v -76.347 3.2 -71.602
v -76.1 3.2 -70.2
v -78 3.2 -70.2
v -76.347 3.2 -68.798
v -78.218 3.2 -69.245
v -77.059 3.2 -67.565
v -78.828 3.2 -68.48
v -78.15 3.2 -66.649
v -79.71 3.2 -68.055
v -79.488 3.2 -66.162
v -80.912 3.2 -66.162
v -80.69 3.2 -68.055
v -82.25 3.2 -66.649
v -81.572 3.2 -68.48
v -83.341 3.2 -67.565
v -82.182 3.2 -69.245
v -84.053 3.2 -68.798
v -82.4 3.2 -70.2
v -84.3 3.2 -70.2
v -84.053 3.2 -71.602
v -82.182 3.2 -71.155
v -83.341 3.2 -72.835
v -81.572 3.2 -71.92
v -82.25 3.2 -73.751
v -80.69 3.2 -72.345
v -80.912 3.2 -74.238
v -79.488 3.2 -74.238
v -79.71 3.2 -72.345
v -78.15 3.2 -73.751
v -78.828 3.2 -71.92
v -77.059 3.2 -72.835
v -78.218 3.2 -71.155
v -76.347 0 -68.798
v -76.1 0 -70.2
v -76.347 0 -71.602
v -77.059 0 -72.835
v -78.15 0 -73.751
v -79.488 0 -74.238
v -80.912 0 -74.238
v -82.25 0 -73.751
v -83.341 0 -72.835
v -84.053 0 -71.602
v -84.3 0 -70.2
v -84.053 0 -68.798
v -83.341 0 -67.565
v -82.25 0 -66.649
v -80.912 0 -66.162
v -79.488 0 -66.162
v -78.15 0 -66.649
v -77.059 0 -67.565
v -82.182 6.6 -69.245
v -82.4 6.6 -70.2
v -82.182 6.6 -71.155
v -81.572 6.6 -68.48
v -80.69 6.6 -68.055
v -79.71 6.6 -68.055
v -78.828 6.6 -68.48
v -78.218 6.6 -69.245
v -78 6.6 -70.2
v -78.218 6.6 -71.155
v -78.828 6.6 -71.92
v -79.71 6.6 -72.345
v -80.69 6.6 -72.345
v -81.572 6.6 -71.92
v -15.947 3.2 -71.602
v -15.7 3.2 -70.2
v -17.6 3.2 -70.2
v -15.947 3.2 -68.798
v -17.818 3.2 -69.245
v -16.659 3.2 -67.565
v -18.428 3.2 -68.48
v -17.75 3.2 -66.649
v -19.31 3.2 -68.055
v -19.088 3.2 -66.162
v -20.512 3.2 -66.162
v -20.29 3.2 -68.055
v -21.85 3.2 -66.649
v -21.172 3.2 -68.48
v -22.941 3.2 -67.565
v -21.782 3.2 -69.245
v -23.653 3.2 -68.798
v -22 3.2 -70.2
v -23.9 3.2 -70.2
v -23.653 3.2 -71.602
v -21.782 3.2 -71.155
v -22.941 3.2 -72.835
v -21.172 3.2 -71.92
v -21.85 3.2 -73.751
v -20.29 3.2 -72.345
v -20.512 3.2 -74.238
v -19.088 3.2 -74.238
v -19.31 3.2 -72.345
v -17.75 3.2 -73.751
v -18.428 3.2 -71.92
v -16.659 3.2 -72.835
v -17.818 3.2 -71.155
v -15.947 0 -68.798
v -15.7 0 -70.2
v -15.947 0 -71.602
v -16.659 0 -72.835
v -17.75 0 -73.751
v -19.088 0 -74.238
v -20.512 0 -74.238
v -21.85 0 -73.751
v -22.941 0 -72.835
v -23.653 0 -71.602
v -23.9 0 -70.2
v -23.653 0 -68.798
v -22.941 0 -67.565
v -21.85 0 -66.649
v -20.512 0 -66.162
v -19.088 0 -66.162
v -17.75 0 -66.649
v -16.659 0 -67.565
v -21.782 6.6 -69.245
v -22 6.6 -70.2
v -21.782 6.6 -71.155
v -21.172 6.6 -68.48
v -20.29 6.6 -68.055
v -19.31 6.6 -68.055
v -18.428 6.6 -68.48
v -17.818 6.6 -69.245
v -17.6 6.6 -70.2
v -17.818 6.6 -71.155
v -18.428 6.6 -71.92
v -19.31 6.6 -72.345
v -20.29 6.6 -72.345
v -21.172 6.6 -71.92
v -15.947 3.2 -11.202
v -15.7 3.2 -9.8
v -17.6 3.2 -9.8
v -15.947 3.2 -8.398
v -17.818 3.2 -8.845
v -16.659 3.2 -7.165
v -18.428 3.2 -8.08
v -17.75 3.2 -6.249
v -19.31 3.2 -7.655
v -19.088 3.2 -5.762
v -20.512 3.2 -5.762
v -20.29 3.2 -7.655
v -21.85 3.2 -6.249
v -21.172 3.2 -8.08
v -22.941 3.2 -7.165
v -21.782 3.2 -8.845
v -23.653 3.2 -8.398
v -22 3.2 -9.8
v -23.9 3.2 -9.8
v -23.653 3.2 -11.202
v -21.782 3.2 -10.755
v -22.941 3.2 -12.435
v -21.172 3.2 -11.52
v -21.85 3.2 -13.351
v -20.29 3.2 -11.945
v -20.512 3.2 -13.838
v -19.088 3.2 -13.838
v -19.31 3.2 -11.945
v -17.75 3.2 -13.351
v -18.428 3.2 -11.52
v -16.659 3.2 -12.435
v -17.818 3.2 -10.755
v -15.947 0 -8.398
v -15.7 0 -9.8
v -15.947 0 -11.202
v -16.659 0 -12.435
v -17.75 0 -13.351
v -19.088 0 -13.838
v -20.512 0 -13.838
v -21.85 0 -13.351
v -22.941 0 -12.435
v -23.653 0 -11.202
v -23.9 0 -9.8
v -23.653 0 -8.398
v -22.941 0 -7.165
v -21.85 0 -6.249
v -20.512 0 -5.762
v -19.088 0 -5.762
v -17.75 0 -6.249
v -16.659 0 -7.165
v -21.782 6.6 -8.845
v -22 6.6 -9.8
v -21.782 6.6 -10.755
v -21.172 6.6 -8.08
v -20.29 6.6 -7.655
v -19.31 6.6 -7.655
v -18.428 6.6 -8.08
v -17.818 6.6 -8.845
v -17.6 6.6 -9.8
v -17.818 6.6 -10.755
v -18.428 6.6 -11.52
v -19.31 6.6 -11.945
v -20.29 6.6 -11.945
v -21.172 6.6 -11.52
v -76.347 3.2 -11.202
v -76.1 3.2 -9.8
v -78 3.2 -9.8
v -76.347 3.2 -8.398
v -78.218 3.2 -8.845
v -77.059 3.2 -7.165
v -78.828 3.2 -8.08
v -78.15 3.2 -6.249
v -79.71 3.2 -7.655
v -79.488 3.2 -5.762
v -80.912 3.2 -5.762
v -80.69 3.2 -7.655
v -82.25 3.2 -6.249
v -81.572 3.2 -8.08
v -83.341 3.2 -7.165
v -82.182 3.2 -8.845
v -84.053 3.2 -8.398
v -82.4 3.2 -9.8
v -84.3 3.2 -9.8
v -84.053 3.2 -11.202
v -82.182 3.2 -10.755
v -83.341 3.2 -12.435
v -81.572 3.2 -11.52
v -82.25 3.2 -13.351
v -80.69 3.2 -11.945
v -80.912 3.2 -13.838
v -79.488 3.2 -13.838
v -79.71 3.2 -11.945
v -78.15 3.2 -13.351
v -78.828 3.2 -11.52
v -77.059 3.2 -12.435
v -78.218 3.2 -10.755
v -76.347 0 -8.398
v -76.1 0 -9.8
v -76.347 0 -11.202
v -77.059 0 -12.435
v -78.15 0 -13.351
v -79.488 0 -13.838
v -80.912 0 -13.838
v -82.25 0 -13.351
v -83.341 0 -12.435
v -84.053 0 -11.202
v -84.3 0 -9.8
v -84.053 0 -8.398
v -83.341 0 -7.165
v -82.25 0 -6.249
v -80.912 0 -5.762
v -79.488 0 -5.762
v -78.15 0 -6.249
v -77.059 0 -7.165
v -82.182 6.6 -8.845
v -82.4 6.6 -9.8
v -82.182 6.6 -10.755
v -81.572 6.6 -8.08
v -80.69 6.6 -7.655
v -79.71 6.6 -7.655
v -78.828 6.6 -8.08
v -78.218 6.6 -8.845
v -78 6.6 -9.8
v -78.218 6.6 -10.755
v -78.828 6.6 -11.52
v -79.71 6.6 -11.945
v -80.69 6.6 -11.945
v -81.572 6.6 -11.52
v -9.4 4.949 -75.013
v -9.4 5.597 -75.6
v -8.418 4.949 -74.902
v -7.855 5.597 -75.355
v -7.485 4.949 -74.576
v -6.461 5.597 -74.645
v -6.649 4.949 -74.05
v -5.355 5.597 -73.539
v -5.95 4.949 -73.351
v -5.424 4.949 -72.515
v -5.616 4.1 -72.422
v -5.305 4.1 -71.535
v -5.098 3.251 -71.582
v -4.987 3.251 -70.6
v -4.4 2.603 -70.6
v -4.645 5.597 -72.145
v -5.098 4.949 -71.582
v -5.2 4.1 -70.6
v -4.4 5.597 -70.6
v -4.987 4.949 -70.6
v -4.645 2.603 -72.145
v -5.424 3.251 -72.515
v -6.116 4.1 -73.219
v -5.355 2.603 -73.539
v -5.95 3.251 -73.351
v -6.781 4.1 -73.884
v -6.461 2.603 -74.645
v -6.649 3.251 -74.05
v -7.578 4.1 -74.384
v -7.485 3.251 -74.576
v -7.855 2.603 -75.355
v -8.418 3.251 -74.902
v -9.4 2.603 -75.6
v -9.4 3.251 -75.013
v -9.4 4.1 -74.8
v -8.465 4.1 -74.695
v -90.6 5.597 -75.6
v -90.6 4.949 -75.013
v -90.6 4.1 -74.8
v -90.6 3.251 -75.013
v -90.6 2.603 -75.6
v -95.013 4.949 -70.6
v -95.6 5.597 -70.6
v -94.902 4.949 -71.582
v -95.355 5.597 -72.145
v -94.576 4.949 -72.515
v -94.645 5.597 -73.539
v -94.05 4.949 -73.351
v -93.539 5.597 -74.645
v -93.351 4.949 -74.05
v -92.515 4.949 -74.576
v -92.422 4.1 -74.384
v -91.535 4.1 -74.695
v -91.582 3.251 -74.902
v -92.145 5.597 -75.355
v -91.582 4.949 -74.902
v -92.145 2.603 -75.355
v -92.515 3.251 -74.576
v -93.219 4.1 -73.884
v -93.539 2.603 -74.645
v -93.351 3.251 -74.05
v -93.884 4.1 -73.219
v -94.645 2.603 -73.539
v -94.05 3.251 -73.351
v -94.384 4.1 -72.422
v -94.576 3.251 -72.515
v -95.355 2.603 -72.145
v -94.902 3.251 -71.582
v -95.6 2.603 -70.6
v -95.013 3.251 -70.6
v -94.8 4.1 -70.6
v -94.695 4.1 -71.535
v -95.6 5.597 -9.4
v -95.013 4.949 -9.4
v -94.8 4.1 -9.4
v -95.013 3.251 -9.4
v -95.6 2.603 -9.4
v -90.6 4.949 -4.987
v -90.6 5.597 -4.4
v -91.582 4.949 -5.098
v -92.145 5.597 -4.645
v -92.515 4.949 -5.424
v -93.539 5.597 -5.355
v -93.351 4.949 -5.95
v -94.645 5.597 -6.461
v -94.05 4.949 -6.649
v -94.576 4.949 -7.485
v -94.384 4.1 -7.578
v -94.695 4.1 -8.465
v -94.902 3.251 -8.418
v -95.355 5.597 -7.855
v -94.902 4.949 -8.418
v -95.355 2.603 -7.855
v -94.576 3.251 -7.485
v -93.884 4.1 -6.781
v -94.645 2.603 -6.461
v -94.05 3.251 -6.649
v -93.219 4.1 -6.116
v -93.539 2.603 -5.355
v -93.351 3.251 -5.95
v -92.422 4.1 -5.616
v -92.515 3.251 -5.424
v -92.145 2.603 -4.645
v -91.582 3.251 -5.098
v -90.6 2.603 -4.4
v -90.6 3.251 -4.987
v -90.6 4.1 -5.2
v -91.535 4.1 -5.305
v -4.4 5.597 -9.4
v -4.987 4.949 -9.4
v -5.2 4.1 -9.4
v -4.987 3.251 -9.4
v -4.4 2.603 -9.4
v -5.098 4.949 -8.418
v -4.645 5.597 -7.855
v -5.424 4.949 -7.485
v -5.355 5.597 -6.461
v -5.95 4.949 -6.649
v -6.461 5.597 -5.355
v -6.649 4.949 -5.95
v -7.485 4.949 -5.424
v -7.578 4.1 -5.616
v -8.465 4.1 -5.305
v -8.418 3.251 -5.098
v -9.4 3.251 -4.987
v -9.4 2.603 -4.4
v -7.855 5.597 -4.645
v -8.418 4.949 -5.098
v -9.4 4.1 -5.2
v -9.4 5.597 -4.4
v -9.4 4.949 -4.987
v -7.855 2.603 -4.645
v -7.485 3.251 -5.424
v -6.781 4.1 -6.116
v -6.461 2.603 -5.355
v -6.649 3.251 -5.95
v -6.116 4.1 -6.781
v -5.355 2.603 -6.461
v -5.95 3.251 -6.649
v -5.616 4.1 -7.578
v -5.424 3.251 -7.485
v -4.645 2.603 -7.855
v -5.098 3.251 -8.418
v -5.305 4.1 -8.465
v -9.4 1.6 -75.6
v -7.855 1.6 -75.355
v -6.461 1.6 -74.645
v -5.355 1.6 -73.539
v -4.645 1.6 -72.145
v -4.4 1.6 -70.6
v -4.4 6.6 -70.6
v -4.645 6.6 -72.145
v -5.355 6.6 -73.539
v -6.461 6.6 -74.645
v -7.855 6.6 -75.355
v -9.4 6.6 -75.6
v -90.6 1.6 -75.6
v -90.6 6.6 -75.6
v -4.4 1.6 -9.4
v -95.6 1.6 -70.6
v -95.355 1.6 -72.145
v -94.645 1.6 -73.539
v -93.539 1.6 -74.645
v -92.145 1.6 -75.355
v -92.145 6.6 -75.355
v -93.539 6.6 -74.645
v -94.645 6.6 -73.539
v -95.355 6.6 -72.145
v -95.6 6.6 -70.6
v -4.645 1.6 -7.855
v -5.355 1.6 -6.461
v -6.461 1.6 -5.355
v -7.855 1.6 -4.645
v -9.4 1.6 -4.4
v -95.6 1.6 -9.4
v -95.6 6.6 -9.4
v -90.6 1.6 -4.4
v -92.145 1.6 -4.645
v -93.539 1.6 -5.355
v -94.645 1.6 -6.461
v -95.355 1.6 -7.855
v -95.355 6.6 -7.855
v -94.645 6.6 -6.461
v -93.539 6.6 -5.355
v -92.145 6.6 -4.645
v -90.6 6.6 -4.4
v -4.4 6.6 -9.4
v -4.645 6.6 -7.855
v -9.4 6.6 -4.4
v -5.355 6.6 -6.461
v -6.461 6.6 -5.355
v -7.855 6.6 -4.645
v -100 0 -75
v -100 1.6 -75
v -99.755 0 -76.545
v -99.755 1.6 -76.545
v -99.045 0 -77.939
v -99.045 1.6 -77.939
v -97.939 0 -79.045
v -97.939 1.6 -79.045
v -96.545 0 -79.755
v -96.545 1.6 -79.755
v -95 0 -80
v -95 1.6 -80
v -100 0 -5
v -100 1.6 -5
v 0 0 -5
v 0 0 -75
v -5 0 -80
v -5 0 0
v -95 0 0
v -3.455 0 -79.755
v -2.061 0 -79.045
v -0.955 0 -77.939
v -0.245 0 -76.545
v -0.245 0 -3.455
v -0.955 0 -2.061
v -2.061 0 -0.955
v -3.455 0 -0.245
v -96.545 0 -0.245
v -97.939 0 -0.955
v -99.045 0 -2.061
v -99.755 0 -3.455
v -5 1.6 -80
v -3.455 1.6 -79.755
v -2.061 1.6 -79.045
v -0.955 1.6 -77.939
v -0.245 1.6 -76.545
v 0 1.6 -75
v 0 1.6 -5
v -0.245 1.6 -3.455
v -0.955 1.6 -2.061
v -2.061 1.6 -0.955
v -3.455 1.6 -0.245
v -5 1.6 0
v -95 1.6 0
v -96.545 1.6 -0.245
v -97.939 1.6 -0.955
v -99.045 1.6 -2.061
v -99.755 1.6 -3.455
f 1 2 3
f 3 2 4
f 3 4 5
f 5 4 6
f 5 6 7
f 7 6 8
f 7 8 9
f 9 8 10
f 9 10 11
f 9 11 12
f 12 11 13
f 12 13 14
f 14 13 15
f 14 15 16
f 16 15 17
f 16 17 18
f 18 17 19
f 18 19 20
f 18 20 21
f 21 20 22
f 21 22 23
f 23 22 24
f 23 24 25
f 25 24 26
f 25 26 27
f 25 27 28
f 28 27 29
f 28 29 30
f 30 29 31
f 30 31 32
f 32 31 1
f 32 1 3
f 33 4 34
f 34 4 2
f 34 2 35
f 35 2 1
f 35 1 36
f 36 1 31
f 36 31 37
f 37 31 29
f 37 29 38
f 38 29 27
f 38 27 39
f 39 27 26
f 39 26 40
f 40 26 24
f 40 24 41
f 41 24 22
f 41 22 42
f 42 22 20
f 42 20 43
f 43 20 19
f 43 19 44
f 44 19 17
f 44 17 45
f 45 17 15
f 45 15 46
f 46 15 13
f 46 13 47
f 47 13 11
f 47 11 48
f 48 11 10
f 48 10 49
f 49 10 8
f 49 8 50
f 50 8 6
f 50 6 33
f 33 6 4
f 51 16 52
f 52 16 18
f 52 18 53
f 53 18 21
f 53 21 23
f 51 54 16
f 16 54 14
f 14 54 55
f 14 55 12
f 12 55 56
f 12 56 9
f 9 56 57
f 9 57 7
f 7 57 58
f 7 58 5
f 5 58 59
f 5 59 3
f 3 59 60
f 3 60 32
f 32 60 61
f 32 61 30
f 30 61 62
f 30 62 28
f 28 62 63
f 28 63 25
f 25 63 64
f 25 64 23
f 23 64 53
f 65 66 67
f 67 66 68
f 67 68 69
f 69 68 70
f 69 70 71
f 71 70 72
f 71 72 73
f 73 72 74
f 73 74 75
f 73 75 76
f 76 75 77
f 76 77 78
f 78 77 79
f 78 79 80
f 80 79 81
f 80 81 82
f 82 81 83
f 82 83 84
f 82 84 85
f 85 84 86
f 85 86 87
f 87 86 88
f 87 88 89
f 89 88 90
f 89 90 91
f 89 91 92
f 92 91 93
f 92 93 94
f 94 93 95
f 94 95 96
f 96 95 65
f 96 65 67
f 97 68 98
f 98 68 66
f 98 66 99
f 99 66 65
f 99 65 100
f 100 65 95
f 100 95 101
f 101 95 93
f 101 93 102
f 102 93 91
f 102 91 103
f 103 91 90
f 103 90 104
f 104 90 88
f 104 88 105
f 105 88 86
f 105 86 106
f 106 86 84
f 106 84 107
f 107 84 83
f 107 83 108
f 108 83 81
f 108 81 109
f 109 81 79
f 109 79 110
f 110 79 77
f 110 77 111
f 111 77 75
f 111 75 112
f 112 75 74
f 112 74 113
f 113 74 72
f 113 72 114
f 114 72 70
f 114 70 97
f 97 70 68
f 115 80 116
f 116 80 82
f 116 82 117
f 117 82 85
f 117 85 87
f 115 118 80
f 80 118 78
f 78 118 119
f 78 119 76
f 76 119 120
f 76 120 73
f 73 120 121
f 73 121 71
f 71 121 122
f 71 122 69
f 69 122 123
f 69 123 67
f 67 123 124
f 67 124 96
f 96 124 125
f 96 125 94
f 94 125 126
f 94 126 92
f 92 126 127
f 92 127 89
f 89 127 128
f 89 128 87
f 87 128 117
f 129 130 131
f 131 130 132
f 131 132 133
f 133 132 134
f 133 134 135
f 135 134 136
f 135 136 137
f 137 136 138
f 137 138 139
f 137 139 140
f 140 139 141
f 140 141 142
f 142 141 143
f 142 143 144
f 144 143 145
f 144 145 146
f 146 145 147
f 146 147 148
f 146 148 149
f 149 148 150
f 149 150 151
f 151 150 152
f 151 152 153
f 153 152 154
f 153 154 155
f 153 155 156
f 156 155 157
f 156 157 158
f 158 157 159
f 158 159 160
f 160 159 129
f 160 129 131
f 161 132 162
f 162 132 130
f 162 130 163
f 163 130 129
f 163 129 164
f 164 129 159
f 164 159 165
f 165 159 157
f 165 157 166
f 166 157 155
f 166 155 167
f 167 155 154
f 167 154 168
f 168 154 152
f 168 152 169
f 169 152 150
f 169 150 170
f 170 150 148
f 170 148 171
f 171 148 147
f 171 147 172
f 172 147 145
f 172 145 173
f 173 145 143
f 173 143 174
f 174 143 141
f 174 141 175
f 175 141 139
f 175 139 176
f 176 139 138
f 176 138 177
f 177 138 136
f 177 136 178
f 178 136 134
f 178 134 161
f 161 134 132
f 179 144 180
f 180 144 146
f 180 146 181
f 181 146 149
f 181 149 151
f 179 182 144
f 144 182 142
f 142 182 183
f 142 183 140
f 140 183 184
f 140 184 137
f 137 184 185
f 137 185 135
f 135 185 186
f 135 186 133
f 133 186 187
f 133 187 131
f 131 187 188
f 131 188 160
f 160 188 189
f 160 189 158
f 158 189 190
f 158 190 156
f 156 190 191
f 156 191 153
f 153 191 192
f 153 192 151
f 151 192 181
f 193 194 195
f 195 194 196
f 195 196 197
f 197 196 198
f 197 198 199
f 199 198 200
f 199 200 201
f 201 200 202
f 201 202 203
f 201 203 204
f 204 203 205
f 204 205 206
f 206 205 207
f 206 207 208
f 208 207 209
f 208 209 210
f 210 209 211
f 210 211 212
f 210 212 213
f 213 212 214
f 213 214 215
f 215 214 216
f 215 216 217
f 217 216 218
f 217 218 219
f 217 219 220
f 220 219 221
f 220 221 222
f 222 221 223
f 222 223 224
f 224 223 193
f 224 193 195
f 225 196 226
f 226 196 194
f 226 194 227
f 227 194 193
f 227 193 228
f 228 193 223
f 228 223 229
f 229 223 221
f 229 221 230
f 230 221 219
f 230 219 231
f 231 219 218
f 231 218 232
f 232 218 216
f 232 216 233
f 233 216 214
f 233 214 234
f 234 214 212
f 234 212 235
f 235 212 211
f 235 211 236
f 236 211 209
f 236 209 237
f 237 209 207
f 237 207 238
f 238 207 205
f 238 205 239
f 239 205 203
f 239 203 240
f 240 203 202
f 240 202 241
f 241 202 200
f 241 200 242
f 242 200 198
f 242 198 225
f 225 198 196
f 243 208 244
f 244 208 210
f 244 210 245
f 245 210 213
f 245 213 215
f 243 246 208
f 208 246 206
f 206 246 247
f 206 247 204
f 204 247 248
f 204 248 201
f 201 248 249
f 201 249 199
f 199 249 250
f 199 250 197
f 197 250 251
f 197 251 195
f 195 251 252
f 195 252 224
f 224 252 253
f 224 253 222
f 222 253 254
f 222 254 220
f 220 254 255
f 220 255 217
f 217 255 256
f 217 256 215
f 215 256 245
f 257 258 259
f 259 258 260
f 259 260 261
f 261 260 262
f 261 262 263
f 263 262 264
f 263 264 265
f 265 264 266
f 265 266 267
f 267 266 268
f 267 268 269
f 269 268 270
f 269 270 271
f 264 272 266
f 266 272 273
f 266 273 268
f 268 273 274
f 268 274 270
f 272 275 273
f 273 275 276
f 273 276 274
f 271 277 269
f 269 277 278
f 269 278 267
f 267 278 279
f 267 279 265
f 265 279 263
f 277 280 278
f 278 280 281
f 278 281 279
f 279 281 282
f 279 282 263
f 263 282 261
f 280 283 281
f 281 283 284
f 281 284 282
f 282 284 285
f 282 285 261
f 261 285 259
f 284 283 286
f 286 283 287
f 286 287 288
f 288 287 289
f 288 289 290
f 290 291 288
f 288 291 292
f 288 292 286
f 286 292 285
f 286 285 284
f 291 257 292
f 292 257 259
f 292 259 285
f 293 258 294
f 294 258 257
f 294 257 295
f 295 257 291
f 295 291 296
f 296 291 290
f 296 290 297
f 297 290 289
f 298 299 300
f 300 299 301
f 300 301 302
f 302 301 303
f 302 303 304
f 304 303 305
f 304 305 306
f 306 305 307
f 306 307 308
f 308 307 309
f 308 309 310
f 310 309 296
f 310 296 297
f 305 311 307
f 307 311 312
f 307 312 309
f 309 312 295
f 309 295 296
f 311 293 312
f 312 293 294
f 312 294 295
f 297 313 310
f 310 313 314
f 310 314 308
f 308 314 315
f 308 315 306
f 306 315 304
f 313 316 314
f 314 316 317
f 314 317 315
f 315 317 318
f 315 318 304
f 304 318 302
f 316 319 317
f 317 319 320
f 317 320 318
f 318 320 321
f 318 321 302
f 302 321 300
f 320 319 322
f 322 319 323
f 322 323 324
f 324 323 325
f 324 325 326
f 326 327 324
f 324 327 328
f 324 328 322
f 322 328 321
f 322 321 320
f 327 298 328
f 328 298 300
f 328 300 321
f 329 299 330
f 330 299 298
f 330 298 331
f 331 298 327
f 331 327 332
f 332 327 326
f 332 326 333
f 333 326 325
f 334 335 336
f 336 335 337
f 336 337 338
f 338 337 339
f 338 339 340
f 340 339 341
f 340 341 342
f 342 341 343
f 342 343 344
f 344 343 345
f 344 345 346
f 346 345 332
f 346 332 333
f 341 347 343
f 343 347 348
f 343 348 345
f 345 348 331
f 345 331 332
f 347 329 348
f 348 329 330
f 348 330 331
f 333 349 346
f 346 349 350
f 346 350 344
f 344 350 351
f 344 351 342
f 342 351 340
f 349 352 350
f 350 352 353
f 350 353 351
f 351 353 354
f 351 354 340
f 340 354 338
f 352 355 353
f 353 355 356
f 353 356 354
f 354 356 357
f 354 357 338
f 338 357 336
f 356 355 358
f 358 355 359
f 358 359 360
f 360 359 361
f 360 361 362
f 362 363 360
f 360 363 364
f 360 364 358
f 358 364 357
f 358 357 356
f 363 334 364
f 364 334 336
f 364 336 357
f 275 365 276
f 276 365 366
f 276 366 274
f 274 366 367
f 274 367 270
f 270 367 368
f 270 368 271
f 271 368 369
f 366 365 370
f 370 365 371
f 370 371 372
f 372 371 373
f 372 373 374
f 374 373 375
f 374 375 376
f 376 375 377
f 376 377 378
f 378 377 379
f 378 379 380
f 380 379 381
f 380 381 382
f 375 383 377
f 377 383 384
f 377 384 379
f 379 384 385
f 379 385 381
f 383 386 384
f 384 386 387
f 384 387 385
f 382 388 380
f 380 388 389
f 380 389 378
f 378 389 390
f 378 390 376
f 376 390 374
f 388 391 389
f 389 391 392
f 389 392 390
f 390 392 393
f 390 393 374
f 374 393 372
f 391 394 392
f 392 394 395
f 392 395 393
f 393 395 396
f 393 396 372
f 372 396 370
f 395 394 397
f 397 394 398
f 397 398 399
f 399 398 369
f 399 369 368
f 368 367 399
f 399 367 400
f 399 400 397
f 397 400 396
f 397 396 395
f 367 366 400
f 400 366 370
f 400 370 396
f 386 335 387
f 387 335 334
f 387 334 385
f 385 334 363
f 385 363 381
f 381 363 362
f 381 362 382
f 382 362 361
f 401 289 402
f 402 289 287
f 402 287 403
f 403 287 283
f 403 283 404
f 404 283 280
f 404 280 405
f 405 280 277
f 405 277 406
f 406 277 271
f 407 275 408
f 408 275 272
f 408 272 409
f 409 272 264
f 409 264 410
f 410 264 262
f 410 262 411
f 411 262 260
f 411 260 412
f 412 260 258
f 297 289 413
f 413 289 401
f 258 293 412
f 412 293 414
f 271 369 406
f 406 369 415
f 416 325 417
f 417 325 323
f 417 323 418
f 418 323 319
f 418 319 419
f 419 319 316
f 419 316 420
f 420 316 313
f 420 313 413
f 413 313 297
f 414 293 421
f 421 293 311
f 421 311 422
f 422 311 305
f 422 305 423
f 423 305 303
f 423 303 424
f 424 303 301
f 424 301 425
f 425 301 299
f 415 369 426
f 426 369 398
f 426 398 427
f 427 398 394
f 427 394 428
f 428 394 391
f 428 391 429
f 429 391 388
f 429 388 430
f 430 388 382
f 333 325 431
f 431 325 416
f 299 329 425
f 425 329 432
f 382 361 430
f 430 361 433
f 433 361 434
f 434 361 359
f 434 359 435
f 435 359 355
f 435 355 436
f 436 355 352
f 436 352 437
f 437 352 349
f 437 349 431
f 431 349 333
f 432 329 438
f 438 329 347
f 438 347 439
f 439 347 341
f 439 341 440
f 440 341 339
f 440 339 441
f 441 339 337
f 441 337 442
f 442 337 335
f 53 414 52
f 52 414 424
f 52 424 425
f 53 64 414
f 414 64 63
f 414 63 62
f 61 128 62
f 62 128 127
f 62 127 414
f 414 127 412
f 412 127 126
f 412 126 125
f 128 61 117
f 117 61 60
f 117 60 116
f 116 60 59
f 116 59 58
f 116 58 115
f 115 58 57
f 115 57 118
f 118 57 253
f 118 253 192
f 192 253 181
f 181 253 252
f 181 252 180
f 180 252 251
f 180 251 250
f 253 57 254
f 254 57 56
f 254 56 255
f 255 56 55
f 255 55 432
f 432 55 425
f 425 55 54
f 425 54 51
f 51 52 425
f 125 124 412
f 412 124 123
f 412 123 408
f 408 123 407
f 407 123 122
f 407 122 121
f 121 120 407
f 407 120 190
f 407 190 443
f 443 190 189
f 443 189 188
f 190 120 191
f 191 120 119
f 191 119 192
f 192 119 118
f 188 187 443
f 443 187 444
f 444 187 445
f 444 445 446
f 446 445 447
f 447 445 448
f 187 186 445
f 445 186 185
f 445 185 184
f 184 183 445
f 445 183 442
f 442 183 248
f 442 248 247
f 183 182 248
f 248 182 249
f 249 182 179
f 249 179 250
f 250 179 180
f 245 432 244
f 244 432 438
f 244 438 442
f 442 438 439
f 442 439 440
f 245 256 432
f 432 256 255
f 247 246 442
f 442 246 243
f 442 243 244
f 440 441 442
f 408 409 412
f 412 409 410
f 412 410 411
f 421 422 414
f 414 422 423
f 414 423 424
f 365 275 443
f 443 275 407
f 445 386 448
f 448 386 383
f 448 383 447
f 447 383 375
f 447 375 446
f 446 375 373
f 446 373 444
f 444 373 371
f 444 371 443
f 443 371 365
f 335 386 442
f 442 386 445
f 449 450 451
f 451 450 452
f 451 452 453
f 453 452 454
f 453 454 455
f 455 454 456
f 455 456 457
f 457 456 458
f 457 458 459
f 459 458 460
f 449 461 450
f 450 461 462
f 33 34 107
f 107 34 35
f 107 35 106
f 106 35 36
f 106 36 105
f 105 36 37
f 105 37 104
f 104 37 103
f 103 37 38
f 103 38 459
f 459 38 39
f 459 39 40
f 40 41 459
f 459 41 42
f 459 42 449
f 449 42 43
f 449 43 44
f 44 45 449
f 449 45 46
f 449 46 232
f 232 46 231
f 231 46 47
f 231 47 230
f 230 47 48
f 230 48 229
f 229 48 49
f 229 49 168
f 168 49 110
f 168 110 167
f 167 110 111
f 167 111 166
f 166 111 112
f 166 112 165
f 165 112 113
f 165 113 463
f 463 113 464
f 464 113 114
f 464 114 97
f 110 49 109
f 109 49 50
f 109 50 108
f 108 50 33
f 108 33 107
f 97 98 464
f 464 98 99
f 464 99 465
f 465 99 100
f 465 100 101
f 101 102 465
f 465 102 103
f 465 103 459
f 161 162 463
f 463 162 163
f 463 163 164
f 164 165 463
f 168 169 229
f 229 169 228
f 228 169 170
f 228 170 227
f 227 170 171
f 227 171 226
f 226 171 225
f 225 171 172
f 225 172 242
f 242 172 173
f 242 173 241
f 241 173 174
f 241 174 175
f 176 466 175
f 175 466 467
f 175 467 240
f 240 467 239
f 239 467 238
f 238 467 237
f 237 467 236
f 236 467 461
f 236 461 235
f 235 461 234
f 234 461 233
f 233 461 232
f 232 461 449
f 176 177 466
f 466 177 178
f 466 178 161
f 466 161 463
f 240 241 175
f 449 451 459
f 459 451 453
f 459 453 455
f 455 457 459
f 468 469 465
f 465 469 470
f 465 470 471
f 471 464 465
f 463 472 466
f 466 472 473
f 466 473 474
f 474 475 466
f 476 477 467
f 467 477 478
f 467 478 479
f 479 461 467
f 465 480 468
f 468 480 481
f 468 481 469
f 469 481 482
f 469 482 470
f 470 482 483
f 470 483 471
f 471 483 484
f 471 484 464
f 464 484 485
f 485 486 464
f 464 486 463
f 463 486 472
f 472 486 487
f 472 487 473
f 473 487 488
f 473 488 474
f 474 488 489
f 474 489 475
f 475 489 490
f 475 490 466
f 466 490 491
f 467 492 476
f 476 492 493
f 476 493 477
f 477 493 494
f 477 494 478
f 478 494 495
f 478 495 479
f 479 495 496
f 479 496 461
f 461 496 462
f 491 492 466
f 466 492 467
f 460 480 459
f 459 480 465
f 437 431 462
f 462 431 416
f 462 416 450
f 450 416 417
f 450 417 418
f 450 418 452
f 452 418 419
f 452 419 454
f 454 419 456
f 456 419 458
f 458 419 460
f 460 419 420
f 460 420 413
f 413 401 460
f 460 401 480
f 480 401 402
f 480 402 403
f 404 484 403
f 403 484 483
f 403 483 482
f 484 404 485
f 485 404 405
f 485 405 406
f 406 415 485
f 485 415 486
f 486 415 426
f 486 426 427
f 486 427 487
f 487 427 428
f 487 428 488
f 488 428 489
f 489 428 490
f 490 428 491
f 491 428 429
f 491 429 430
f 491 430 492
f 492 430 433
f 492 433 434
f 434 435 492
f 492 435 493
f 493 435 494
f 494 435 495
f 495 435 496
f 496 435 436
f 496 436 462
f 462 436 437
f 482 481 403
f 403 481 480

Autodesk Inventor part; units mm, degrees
ref_plane "YZ Plane" through (0, 0, 0) normal (1, 0, 0) x (0, 1, 0)
ref_plane "XZ Plane" through (0, 0, 0) normal (0, 1, 0) x (-1, 0, 0)
sketch "Sketch1" plane through (0, 0, 0) normal (0, 1, 0) x (-1, 0, 0)
  line L0 (0, 0) -> (100, 0)
  line L1 (100, 0) -> (100, -80)
  line L2 (100, -80) -> (0, -80)
  line L3 (0, -80) -> (0, 0)
  dimension "d0" = 100
  dimension "d1" = 80
extrude "LidBase" add sketch "Sketch1" along normal blind 1.6
fillet "Fillet1" radius 5 4 edges at (-100, 0.8, 0) (0, 0.8, 0) (0, 0.8, -80) (-100, 0.8, -80)
sketch "Sketch3" plane through (0, 1.6, 0) normal (0, 1, 0) x (1, 0, 0)
  line L0 (-5, 80) -> (-95, 80) projected
  arc A0 (-95, 80) -> (-100, 75) centre (-95, 75) ccw projected
  line L1 (-100, 75) -> (-100, 5) projected
  arc A1 (-100, 5) -> (-95, 0) centre (-95, 5) ccw projected
  line L2 (-95, 0) -> (-5, 0) projected
  arc A2 (-5, 0) -> (0, 5) centre (-5, 5) ccw projected
  line L3 (0, 5) -> (0, 75) projected
  arc A3 (0, 75) -> (-5, 80) centre (-5, 75) ccw projected
  line L4 (-5, 80) -> (-95, 80) projected
  line L5 (-95.6, 75.6) -> (-4.4, 75.6)
  line L6 (-4.4, 75.6) -> (-4.4, 4.4)
  line L7 (-4.4, 4.4) -> (-95.6, 4.4)
  line L8 (-95.6, 4.4) -> (-95.6, 75.6)
  point P0 (0, 0)
  dimension "d5" = 4.4
  dimension "d6" = 4.4
  dimension "d7" = 4.4
  dimension "d8" = 4.4
extrude "Gasket Seal" add sketch "Sketch3" along normal blind 5 contours L5 L6 L7 L8
fillet "Fillet2" radius 5 4 edges at (-4.4, 4.1, -4.4) (-4.4, 4.1, -75.6) (-95.6, 4.1, -75.6) (-95.6, 4.1, -4.4)
ref_plane "Work Plane4" through (-54.4, 1.6, -9.4) normal (1, 0, 0) x (0, 0, -1)
sketch "Sketch7" plane through (-54.4, 1.6, -9.4) normal (1, 0, 0) x (0, 0, -1)
  line L0 (70.6, -1.6) -> (-9.4, -1.6) projected
  line L1 (-9.4, -1.6) -> (-9.4, 0) projected
  line L2 (-9.4, 0) -> (-5, 0) projected
  line L3 (-5, 0) -> (-5, 5) projected
  line L4 (-5, 5) -> (66.2, 5) projected
  line L5 (66.2, 5) -> (66.2, 0) projected
  line L6 (66.2, 0) -> (70.6, 0) projected
  line L7 (70.6, 0) -> (70.6, -1.6) projected
  circle A0 centre (-6, 2.5) radius 1.8
  point P0 (-9.4, -1.6)
  dimension "d24" = 3.6
  dimension "d25" = 2.5
  dimension "d26" = 1
sketch3d "3D Sketch3"
  line L0 (-90.6, 1.6, -4.4) -> (-9.4, 1.6, -4.4)
  arc A0 (-9.4, 1.6, -4.4) -> (-4.4, 1.6, -9.4) centre (-9.4, 1.6, -9.4) ccw
  line L1 (-4.4, 1.6, -9.4) -> (-4.4, 1.6, -70.6)
  arc A1 (-4.4, 1.6, -70.6) -> (-9.4, 1.6, -75.6) centre (-9.4, 1.6, -70.6) ccw
  line L2 (-9.4, 1.6, -75.6) -> (-90.6, 1.6, -75.6)
  arc A2 (-90.6, 1.6, -75.6) -> (-95.6, 1.6, -70.6) centre (-90.6, 1.6, -70.6) ccw
  line L3 (-95.6, 1.6, -70.6) -> (-95.6, 1.6, -9.4)
  arc A3 (-95.6, 1.6, -9.4) -> (-90.6, 1.6, -4.4) centre (-90.6, 1.6, -9.4) ccw
sweep "Oring Channel" cut profiles "Sketch7" path "3D Sketch3" contours A0 L3 | L3 A0
sketch "Sketch8" plane through (0, 0, 0) normal (0, 1, 0) x (1, 0, 0)
  line L0 (-100, 75) -> (-100, 5) projected
  line L1 (-95, 0) -> (-5, 0) projected
  line L2 (-9.4, 75.6) -> (-90.6, 75.6) projected
  line L3 (-5, 80) -> (-95, 80) projected
  line L4 (0, 5) -> (0, 75) projected
  point P0 (0, 0)
  point P1 (-80.2, 9.8)
  point P2 (-19.8, 9.8)
  point P3 (-19.8, 70.2)
  point P4 (-80.2, 70.2)
  dimension "d29" = 19.8
  dimension "d30" = 9.8
  dimension "d32" = 9.8
  dimension "d33" = 19.8
  dimension "d34" = 19.8
  dimension "d35" = 9.8
  dimension "d36" = 19.8
  dimension "d37" = 9.8
hole "Hole1" at (-80.2, 0, -9.8) at (-19.8, 0, -9.8) at (-19.8, 0, -70.2) at (-80.2, 0, -70.2) direction (0, 1, 0) diameter 4.4 end through all counterbore diameter 8.2 counterbore depth 3.2
equation "\"d6\" = d5"
equation "\"d7\" = d5"
equation "\"d8\" = d5"
equation "\"d32\" = d30"
equation "\"d33\" = d29"
equation "\"d34\" = d29"
equation "\"d35\" = d30"
equation "\"d36\" = d34"
equation "\"d37\" = d30"
properties part number "Lid"
